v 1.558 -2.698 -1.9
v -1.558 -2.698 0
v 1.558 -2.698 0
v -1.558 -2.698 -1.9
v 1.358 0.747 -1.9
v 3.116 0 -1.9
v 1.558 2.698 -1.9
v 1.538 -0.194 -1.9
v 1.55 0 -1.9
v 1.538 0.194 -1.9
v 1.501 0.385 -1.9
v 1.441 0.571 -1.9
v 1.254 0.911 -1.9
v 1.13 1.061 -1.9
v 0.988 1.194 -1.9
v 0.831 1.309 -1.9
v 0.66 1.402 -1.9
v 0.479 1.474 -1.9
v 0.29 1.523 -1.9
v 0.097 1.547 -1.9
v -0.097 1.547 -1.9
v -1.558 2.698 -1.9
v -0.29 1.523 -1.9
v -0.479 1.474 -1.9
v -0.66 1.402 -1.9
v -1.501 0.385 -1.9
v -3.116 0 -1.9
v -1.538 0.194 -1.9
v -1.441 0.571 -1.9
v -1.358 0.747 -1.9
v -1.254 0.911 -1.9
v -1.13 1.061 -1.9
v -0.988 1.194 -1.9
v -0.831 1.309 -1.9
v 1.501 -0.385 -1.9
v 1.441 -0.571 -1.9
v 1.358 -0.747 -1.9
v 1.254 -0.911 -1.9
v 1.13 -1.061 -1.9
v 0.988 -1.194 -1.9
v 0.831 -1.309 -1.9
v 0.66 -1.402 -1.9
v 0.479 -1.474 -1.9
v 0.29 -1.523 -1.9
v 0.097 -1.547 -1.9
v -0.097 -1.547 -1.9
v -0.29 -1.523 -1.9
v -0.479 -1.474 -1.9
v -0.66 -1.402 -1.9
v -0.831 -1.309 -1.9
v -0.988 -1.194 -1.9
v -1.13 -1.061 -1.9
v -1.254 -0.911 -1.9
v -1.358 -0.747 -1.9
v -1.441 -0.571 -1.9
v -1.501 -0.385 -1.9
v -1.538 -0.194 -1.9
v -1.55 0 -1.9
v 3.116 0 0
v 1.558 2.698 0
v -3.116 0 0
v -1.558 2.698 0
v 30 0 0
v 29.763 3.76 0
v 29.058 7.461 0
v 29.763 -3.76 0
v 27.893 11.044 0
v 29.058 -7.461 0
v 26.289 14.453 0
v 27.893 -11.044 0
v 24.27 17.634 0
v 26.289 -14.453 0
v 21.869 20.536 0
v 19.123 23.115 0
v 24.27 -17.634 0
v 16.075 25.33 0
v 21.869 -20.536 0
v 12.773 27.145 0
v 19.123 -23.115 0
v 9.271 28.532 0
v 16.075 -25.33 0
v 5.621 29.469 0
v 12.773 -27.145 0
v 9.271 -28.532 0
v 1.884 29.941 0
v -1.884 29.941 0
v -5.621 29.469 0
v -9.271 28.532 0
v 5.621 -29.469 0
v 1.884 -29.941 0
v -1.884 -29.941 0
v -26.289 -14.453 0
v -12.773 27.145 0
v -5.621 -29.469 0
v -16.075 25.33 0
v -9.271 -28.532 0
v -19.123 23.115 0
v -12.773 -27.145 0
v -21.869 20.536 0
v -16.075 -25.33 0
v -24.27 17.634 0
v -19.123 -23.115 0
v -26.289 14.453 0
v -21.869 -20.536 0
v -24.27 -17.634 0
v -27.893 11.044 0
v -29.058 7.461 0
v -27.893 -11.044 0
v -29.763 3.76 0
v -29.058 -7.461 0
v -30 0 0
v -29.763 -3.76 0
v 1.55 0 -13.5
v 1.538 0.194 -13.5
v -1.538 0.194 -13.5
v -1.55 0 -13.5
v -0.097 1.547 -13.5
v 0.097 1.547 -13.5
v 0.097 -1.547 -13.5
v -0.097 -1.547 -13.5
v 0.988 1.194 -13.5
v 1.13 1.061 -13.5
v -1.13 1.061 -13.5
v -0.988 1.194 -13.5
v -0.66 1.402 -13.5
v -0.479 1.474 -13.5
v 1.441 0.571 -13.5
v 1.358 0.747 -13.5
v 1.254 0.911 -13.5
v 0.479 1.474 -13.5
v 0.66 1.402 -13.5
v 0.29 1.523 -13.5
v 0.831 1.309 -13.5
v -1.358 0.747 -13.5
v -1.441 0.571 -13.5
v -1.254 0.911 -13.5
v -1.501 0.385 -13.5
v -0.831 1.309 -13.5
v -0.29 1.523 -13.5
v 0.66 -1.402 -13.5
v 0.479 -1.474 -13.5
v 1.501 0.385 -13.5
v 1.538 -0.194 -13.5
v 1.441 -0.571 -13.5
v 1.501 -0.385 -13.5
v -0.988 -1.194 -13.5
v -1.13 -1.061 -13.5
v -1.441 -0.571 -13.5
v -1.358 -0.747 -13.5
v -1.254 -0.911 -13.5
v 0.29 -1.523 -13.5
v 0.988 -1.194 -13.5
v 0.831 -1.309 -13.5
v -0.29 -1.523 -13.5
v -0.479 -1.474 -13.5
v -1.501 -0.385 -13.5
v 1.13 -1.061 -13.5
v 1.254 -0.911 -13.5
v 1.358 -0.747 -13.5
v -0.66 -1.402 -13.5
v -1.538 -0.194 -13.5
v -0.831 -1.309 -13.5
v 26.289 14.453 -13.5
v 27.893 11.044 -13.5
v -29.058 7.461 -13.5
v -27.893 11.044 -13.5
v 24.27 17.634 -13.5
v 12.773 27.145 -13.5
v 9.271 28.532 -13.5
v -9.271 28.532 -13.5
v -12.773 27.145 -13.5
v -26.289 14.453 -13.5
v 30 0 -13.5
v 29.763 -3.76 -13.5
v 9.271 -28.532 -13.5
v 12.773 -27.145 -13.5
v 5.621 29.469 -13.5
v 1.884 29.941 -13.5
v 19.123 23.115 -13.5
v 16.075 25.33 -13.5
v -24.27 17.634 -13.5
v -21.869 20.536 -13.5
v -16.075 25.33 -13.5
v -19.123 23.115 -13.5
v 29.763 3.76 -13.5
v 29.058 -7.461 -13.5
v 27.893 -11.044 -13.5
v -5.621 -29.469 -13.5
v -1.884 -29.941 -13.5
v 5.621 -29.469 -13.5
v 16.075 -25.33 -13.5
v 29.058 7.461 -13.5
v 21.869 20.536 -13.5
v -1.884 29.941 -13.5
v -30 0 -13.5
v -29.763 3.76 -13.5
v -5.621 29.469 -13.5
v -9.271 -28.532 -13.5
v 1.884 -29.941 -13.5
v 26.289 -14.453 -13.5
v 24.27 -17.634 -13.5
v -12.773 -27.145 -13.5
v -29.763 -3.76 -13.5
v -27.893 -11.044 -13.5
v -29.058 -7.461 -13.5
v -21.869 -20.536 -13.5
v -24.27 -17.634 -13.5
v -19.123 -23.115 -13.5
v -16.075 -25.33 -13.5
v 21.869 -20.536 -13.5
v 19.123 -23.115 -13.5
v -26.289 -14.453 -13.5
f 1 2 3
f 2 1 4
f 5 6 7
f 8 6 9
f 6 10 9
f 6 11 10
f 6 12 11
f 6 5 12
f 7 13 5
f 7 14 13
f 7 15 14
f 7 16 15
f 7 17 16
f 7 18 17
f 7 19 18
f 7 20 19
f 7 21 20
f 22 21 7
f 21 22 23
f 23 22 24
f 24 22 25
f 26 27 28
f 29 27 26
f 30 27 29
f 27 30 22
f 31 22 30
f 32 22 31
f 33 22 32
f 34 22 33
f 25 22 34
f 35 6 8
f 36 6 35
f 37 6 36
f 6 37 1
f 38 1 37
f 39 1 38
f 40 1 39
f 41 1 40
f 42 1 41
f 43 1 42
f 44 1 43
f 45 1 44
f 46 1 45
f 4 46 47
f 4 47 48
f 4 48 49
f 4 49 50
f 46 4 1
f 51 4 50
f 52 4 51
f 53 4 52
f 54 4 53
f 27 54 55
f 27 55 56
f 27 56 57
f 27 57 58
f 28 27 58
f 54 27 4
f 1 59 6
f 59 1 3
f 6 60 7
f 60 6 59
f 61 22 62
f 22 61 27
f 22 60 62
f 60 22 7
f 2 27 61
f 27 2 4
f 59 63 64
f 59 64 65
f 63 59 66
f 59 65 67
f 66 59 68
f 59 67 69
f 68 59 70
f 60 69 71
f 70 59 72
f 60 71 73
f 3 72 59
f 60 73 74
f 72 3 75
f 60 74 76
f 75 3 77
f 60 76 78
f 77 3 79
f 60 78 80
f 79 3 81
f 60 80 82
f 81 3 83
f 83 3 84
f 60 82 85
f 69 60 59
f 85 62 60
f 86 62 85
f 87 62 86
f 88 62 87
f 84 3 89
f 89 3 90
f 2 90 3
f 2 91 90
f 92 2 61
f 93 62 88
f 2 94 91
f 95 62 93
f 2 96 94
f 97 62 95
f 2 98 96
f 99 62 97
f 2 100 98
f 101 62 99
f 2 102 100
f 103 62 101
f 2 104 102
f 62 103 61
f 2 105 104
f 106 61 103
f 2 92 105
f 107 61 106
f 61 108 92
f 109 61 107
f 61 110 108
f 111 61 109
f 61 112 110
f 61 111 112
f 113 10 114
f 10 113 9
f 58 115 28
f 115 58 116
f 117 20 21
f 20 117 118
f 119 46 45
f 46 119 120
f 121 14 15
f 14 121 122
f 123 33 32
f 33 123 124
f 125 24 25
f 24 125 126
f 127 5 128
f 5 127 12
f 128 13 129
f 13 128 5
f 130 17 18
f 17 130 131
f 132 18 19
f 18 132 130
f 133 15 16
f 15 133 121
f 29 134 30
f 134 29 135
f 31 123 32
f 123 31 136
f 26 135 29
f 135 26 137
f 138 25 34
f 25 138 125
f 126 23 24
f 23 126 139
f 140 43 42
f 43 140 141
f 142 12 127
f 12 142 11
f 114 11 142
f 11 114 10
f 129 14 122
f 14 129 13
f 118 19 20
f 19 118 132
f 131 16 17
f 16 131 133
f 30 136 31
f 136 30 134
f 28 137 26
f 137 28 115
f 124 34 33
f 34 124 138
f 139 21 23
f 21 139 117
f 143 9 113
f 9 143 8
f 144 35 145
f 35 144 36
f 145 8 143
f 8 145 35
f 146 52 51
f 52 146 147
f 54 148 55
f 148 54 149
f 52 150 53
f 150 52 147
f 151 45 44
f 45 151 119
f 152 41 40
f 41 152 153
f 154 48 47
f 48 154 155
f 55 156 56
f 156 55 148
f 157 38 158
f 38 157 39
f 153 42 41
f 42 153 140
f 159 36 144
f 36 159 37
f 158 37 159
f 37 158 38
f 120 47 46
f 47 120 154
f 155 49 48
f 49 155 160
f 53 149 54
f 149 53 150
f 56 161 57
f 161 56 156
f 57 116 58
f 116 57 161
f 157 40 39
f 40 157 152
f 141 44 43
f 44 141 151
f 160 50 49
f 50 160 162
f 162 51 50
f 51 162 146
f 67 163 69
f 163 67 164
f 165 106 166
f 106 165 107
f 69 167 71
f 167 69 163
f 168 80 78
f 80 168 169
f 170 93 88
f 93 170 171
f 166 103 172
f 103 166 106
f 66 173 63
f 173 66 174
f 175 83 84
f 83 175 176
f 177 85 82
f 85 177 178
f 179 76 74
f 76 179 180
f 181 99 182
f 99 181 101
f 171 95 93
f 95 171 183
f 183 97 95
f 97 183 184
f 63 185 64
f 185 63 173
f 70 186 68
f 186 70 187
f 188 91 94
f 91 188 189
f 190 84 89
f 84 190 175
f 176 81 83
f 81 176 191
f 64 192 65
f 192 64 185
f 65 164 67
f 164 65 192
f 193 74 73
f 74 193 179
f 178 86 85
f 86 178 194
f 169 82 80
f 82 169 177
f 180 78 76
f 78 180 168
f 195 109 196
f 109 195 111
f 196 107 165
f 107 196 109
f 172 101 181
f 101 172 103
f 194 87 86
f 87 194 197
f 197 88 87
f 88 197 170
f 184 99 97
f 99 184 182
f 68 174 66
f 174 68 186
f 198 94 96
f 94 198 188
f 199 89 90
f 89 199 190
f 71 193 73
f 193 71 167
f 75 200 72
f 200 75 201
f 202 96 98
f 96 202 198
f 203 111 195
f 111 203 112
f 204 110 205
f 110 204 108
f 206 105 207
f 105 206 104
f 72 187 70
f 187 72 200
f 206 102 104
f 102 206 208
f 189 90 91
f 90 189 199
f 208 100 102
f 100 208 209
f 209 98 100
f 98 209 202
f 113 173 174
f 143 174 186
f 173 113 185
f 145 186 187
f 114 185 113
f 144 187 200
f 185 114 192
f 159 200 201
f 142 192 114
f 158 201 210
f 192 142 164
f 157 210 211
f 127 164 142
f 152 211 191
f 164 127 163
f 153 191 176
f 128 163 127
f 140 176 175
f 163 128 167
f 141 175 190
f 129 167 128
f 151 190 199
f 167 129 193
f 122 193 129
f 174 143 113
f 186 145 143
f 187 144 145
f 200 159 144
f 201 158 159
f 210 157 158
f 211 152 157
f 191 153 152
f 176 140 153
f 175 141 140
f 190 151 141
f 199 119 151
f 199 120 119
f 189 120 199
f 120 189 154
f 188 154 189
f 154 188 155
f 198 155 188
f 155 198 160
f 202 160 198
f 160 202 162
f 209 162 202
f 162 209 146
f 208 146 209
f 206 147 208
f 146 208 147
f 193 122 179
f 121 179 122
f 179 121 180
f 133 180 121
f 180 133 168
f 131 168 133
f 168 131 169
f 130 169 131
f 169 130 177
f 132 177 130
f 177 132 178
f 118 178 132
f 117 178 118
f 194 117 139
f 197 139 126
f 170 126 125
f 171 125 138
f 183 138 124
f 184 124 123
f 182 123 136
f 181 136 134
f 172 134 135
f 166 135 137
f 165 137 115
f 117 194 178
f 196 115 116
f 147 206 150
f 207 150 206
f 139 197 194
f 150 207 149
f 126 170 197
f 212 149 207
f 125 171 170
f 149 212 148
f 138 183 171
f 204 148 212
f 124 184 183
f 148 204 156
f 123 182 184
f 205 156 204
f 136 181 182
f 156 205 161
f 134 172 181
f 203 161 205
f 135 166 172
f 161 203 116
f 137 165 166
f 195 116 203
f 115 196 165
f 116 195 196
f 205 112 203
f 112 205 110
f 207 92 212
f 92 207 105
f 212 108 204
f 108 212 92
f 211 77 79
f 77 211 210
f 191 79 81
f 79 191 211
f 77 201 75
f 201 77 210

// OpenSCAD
$fn = 50;


difference() {
	union() {
		translate(v = [0, 0, -13.5000000000]) {
			cylinder(h = 13.5000000000, r = 30.0000000000);
		}
	}
	union() {
		translate(v = [0, 0, 0]) {
			rotate(a = [0, 0, 0]) {
				difference() {
					union() {
						translate(v = [0, 0, -1.9000000000]) {
							linear_extrude(height = 1.9000000000) {
								polygon(points = [[3.1158000000, 0.0000000000], [1.5579000000, 2.6983619531], [-1.5579000000, 2.6983619531], [-3.1158000000, 0.0000000000], [-1.5579000000, -2.6983619531], [1.5579000000, -2.6983619531]]);
							}
						}
					}
					union();
				}
			}
		}
		#translate(v = [0, 0, -100.0000000000]) {
			cylinder(h = 200, r = 1.5500000000);
		}
	}
}
